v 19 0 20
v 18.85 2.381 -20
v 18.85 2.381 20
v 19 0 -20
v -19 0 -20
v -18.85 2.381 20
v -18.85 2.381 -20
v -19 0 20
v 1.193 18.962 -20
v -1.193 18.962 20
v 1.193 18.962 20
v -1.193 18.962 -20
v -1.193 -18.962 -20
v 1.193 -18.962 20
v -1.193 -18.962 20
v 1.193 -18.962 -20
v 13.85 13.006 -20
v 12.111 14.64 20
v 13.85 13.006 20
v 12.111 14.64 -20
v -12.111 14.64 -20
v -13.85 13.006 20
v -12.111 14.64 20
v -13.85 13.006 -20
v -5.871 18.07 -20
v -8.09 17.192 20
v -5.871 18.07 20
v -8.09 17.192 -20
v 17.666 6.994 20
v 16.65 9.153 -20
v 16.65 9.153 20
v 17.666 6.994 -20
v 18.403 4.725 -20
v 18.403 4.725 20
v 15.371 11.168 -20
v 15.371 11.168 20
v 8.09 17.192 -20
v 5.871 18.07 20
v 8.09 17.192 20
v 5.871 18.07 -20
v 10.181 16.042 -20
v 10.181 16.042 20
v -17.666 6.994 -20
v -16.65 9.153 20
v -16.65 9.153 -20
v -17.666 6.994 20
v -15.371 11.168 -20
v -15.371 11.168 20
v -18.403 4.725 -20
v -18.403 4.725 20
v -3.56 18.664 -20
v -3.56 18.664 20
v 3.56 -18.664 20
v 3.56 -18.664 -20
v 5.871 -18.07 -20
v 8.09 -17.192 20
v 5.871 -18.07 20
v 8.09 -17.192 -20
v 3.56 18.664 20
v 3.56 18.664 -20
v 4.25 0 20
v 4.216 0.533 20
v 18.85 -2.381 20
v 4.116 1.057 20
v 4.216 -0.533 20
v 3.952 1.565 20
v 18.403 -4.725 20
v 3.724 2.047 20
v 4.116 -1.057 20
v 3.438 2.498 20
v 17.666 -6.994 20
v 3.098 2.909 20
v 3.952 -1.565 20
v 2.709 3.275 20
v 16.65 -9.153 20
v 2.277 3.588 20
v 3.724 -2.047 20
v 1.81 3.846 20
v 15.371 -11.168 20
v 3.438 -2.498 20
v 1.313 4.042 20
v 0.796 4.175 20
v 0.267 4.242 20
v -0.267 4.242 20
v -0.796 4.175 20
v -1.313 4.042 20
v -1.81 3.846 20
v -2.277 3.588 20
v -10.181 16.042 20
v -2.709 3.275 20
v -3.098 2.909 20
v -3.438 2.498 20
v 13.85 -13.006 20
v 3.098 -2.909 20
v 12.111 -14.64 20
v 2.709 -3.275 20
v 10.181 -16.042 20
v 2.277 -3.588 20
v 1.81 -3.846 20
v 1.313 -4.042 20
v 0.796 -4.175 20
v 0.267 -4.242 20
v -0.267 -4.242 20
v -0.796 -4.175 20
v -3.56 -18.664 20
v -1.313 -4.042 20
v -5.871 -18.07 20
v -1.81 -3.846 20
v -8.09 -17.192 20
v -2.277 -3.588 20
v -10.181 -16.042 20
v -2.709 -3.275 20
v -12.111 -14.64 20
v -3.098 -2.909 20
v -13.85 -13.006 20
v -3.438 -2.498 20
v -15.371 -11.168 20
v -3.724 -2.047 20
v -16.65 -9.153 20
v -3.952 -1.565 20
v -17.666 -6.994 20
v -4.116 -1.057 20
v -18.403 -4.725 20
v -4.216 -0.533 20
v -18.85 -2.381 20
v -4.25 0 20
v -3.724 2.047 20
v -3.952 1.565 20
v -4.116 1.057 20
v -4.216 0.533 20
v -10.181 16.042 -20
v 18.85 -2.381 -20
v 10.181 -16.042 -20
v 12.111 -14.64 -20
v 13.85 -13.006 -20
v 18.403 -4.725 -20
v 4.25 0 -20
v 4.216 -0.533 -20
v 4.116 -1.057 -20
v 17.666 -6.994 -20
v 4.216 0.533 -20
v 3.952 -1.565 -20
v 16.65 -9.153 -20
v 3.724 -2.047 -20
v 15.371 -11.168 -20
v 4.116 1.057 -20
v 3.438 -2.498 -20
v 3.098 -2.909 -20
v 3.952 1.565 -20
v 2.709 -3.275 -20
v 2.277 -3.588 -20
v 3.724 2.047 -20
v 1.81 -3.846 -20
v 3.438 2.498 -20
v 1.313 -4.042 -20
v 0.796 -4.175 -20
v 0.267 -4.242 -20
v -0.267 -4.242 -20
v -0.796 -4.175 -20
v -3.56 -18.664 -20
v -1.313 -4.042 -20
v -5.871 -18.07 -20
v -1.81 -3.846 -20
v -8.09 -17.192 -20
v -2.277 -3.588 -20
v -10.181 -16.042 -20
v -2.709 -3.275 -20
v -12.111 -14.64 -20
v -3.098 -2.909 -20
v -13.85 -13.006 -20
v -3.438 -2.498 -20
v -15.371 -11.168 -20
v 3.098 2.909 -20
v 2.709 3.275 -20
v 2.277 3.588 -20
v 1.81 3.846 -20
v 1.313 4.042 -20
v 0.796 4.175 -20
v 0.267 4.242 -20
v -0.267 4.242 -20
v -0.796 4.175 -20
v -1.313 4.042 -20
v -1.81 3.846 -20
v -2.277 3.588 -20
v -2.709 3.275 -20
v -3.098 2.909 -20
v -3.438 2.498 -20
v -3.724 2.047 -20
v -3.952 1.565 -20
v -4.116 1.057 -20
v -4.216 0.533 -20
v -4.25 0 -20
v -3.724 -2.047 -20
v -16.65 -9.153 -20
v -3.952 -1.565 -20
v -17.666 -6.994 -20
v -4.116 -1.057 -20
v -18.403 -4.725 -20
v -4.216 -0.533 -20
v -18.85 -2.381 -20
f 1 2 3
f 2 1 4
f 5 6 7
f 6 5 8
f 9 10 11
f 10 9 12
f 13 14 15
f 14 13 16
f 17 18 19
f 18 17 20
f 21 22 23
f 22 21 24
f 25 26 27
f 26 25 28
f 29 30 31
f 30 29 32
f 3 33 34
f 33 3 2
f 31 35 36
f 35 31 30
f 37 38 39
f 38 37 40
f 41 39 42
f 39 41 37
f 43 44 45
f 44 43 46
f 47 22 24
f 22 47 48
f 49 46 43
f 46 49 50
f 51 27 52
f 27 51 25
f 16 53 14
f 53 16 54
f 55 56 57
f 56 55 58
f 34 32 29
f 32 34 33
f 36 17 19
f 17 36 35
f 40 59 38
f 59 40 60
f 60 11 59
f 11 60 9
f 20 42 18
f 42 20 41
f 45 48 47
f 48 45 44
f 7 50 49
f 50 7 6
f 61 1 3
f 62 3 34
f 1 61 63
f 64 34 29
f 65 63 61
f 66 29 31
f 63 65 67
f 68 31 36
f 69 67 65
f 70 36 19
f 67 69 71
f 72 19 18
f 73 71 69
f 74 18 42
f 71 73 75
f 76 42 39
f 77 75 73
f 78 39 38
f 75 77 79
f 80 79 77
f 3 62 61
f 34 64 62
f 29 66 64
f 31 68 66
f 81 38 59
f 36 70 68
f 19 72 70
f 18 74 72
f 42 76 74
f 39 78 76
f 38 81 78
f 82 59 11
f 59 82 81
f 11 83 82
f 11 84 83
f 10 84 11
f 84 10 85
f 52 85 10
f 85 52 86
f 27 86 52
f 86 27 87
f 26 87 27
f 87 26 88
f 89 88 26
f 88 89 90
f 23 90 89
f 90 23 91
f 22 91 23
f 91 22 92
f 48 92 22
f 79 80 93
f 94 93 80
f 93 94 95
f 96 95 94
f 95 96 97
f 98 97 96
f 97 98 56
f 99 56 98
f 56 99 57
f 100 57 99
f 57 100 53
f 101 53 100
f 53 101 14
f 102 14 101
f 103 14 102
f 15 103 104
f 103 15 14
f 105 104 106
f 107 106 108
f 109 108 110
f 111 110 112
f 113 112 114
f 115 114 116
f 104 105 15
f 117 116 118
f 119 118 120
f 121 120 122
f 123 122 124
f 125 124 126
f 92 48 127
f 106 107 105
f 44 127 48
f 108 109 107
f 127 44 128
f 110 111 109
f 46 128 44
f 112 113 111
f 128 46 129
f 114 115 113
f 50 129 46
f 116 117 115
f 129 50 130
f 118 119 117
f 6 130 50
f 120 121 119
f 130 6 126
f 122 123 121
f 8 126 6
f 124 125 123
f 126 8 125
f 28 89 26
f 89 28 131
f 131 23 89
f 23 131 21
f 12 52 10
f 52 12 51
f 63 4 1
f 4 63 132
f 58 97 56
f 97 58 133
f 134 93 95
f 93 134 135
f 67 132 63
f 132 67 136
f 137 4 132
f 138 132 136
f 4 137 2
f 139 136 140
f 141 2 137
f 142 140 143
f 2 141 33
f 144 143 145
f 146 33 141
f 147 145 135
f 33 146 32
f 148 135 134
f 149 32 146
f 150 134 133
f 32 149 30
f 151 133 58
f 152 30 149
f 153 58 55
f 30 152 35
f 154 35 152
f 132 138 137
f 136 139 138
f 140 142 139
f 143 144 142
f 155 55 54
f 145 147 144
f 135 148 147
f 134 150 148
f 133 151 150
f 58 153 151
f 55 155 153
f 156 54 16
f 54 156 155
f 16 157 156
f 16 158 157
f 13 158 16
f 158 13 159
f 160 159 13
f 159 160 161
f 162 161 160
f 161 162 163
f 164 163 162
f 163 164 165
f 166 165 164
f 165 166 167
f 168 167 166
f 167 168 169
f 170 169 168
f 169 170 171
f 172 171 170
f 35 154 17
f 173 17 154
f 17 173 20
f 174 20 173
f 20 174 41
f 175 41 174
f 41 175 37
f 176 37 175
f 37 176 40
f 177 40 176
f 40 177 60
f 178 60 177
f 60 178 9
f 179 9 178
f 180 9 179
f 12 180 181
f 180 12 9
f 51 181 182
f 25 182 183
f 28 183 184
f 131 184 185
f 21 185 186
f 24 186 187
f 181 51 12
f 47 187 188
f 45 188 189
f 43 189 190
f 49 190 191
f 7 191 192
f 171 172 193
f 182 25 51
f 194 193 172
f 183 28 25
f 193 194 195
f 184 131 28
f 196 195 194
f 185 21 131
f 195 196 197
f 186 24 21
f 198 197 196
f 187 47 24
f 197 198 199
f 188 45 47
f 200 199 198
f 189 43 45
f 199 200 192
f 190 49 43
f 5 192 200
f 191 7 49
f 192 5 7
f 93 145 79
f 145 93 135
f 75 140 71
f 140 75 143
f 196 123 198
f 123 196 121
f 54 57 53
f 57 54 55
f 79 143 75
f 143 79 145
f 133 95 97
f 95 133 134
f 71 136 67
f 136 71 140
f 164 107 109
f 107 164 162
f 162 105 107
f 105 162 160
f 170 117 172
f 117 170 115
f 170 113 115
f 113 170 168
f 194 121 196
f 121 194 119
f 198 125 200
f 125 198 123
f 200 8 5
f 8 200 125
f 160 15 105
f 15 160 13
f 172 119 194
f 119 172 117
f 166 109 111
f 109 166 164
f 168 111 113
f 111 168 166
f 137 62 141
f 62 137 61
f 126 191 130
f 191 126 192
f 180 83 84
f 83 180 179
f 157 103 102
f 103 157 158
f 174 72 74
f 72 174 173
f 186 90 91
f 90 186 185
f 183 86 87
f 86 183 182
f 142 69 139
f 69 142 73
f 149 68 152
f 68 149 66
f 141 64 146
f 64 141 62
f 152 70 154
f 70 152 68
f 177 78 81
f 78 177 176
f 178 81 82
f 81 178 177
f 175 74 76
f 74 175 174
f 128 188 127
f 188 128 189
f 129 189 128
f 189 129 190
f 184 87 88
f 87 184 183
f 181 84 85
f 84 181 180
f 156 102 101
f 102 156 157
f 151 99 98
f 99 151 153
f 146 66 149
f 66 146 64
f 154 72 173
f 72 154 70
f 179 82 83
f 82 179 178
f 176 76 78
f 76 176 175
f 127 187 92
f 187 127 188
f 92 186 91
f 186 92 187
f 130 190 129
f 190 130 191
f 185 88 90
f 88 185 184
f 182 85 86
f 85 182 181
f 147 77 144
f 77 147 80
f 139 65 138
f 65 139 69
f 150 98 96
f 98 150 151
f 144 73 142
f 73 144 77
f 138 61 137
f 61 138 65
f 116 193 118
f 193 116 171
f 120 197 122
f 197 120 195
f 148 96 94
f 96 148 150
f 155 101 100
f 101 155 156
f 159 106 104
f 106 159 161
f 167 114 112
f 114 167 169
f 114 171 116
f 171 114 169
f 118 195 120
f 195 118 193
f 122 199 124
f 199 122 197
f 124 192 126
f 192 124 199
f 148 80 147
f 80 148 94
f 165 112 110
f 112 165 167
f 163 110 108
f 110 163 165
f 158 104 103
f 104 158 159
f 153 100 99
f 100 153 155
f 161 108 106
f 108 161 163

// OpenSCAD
$fn = 50;


difference() {
	union() {
		translate(v = [0, 0, -20.0000000000]) {
			cylinder(h = 40, r = 19.0000000000);
		}
	}
	union() {
		translate(v = [0, 0, -100.0000000000]) {
			cylinder(h = 200, r = 4.2500000000);
		}
	}
}
